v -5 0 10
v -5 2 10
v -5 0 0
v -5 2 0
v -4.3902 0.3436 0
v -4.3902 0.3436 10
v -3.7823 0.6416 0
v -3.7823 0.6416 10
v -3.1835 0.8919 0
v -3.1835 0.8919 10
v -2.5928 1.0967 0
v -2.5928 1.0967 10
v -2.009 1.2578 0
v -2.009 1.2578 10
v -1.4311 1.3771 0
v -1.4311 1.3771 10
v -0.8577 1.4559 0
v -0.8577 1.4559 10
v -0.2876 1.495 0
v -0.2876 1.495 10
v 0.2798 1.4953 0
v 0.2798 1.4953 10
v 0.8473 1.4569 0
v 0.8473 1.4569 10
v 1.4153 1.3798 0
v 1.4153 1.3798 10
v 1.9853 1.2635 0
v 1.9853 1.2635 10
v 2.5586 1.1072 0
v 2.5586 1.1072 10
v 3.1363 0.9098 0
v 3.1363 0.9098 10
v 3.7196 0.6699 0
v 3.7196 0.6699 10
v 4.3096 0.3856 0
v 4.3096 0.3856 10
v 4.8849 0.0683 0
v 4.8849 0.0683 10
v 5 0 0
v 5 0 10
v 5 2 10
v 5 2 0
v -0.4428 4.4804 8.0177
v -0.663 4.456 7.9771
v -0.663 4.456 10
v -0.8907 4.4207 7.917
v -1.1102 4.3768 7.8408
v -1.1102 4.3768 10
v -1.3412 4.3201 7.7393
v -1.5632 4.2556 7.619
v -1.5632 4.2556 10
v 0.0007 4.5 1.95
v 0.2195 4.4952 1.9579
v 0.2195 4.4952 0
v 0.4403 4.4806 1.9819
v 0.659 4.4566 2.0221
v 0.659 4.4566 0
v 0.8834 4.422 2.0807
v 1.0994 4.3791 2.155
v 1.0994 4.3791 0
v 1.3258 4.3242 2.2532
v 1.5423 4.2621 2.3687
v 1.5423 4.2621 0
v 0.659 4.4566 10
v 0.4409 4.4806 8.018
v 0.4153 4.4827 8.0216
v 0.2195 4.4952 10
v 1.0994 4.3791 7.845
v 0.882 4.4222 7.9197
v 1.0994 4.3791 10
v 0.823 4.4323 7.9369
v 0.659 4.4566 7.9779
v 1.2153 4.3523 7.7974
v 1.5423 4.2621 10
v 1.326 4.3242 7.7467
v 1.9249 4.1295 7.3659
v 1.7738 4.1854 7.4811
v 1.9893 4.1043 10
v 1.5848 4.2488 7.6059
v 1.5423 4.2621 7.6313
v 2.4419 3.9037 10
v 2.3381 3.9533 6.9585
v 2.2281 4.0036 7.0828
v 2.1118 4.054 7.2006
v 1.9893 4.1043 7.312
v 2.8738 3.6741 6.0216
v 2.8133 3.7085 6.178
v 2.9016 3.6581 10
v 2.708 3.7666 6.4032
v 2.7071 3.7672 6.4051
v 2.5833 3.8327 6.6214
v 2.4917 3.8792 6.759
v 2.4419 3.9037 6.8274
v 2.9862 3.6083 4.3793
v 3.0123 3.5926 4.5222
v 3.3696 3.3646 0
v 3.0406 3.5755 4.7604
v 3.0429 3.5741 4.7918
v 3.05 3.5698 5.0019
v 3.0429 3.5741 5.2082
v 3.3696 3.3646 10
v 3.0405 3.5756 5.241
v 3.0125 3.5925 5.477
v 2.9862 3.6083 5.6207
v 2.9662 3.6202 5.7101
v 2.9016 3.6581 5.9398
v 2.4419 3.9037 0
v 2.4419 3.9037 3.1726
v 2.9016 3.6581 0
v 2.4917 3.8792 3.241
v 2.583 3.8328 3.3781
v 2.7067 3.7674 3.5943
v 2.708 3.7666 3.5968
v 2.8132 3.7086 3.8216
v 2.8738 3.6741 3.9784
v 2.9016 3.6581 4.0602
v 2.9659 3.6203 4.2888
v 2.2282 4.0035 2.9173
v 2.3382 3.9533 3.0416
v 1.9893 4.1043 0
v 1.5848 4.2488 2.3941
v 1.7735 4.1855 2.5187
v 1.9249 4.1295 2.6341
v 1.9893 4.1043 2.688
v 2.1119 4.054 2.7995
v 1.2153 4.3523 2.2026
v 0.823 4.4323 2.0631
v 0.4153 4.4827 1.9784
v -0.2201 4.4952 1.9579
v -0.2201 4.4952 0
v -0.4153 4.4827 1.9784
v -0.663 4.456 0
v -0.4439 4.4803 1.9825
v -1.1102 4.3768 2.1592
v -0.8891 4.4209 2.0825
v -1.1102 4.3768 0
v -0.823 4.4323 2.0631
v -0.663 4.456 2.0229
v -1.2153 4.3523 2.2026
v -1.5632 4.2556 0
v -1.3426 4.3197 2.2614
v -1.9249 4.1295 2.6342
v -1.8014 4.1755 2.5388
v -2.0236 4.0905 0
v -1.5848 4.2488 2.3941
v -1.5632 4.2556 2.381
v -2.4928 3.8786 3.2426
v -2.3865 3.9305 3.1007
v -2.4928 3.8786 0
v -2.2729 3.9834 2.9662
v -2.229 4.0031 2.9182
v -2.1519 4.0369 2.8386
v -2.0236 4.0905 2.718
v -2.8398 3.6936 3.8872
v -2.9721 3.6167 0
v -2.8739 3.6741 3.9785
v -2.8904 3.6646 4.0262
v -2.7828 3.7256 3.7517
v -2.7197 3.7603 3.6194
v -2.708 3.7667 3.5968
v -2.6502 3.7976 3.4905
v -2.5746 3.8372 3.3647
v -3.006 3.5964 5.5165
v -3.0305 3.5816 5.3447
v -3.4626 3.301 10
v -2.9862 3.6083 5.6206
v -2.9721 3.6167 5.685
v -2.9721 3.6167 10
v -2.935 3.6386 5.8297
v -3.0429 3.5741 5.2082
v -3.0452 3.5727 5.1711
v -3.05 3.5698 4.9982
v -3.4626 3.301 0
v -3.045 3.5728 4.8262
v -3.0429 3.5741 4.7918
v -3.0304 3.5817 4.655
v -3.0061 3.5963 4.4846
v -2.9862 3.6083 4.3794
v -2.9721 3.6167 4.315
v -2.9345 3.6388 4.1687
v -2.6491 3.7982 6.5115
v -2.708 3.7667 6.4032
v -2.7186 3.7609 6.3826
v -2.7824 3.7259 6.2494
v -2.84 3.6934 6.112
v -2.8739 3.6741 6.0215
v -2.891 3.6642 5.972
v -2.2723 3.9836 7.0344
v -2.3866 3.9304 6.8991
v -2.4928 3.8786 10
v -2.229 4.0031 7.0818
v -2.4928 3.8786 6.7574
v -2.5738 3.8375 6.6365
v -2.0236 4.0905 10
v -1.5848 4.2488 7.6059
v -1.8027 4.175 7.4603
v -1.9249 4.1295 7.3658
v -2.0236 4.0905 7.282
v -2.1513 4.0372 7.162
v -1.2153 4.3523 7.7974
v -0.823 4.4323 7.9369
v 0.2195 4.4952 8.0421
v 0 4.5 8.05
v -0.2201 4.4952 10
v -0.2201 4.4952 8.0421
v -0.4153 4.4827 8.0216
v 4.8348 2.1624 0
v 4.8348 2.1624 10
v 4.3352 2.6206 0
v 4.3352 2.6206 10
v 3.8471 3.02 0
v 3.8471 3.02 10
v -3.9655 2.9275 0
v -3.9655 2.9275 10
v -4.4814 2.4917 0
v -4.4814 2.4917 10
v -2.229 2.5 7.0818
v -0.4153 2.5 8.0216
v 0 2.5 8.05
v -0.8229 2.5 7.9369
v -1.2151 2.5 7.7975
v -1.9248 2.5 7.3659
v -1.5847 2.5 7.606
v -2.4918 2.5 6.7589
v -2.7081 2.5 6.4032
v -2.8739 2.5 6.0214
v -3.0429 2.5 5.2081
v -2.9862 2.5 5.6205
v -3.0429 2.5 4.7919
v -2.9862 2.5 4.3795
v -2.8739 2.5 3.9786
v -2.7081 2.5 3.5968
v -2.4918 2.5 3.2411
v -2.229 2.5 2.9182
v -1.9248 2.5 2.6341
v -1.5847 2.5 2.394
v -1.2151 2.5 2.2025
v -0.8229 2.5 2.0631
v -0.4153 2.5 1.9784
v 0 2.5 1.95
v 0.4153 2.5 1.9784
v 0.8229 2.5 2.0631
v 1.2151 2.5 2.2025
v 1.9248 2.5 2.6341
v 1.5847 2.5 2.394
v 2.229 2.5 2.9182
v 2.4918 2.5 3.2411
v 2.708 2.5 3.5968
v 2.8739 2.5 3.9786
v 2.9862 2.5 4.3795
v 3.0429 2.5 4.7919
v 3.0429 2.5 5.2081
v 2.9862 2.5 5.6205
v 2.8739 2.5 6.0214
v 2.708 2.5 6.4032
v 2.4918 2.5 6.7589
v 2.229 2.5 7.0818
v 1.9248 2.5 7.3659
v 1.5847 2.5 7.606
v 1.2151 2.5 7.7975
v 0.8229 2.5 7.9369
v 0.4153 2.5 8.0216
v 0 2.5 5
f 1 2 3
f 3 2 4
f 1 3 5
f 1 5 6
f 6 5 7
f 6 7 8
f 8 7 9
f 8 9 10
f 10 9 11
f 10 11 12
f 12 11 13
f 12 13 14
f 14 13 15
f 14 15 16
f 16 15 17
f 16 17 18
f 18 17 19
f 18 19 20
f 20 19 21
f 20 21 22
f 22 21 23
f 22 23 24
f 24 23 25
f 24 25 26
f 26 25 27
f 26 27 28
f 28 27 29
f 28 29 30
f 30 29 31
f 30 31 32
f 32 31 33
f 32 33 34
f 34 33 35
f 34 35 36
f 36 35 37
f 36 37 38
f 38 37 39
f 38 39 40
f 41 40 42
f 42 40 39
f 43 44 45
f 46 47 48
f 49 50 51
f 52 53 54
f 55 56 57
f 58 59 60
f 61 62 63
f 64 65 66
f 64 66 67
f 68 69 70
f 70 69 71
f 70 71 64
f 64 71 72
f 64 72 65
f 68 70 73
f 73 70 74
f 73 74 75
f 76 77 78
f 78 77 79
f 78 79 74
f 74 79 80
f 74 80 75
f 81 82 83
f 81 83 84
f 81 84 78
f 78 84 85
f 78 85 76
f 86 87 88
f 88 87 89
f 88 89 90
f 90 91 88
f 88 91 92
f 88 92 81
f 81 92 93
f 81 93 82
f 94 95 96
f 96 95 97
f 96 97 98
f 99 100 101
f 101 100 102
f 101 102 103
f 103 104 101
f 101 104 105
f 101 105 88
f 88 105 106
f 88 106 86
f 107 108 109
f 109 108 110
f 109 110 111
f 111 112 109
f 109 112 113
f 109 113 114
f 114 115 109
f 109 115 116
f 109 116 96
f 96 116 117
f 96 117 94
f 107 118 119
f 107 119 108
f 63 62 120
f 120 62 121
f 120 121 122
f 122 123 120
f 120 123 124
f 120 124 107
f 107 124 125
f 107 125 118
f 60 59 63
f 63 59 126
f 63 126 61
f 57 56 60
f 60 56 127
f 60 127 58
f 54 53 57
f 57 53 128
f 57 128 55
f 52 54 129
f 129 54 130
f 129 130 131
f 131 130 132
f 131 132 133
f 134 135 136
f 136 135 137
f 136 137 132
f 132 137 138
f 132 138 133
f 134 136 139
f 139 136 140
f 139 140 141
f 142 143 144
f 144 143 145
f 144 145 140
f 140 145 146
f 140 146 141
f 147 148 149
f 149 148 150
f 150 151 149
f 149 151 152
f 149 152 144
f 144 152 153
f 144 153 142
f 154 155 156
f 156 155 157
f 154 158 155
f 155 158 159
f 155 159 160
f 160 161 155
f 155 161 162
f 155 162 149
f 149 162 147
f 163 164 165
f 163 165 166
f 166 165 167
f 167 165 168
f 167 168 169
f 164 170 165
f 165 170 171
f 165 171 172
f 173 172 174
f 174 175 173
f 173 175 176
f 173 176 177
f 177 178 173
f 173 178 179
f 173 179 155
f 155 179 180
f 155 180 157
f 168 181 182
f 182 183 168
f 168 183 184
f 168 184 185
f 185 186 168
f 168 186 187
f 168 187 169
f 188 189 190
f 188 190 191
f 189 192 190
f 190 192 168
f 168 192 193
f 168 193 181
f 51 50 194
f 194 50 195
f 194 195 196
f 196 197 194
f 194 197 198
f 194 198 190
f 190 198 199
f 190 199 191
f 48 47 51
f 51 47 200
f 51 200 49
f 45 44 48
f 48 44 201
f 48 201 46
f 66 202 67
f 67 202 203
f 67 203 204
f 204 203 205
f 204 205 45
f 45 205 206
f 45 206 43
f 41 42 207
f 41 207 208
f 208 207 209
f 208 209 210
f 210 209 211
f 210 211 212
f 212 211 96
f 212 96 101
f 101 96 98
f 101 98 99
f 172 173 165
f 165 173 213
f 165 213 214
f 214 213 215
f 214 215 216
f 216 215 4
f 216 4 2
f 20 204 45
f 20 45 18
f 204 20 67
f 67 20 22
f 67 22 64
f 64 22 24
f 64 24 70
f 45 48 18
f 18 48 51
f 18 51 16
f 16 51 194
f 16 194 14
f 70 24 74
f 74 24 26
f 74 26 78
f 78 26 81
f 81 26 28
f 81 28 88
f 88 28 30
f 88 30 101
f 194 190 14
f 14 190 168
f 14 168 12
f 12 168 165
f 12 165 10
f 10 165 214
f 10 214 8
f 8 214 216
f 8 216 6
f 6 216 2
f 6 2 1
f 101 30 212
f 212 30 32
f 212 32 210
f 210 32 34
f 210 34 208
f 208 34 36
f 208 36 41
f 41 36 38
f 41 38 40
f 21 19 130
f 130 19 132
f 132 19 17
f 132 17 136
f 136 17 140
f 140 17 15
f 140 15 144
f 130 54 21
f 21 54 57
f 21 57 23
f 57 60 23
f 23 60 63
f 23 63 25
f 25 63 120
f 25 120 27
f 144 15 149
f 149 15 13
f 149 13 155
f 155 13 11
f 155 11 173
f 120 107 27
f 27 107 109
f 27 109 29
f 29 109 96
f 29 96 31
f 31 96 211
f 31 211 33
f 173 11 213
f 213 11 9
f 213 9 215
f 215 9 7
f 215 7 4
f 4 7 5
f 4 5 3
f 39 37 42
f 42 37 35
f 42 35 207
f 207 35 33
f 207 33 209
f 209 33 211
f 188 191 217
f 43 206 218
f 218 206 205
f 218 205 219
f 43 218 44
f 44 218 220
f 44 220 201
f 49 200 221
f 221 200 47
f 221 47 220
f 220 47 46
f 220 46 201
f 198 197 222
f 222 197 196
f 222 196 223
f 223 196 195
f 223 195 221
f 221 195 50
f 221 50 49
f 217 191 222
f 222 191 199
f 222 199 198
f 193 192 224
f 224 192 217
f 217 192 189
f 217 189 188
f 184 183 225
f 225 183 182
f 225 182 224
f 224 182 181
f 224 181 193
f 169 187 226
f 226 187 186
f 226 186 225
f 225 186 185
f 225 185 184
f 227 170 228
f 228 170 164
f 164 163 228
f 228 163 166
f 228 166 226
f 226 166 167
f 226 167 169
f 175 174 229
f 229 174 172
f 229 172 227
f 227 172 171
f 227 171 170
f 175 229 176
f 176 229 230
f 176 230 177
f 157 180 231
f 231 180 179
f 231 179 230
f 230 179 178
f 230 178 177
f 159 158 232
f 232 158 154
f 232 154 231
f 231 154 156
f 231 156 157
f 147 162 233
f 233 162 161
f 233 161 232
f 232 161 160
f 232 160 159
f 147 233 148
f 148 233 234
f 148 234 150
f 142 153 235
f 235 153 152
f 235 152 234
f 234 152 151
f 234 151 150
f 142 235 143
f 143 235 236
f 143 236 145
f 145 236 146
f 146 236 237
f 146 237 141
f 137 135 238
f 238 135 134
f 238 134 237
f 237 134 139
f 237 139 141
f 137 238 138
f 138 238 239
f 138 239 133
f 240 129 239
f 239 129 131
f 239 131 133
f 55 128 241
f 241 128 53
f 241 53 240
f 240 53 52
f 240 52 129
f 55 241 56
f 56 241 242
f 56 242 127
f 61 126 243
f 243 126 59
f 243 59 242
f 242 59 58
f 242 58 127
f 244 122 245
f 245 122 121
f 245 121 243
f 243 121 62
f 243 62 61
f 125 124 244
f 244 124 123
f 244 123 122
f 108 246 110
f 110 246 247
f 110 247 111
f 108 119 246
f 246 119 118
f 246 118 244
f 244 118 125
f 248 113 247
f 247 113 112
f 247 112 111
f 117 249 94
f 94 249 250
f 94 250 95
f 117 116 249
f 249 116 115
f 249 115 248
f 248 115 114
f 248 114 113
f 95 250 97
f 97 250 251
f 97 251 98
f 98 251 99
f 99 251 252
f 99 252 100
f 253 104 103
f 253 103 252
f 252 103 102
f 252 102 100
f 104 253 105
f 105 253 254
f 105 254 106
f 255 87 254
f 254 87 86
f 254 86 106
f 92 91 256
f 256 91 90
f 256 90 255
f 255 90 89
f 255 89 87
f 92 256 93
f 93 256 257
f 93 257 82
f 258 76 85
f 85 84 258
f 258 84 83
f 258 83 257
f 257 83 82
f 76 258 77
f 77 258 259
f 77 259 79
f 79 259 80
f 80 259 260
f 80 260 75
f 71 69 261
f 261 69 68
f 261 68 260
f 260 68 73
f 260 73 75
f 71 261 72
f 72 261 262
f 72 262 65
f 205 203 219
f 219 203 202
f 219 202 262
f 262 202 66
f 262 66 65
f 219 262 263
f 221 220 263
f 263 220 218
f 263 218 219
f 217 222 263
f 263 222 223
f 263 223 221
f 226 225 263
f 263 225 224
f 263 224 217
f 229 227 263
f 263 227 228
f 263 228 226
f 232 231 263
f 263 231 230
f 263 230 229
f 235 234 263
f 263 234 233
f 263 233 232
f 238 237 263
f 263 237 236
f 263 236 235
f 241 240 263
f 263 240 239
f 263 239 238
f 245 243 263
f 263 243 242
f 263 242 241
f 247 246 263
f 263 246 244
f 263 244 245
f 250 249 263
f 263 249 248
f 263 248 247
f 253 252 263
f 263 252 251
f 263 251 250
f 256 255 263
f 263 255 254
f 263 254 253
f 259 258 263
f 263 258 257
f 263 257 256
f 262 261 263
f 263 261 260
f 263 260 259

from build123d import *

# Parameters (mm, degrees)
BOSS_EXTRUDE1_DEPTH = 10
CUT_EXTRUDE1_START  = 4.5
SKETCH3_R           = 3.05
CUT_EXTRUDE1_DEPTH  = 2


with BuildPart() as part:
    # Sketch1 → Boss-Extrude1 (new body)
    with BuildSketch(Plane.XY):
        with BuildLine():
            Line((-5, 0), (-5, 2))
            add(Edge.make_bspline(
                [(-5, 2), (0, 7), (5, 2)],
                knots=[0, 0, 0, 1, 1, 1], degree=2))
            Line((5, 2), (5, 0))
            add(Edge.make_bspline(
                [(-5, 0), (0, 3), (5, 0)],
                knots=[0, 0, 0, 1, 1, 1], degree=2))
        make_face()
    extrude(amount=BOSS_EXTRUDE1_DEPTH)

    # Sketch3 → Cut-Extrude1 (cut)
    with BuildSketch(Plane(origin=(0, 0, 0), x_dir=(1, 0, 0), z_dir=(0, 1, 0)).offset(CUT_EXTRUDE1_START)):
        with Locations((0, -5)):
            Circle(SKETCH3_R)
    extrude(amount=-CUT_EXTRUDE1_DEPTH, mode=Mode.SUBTRACT)


solid = part.part
